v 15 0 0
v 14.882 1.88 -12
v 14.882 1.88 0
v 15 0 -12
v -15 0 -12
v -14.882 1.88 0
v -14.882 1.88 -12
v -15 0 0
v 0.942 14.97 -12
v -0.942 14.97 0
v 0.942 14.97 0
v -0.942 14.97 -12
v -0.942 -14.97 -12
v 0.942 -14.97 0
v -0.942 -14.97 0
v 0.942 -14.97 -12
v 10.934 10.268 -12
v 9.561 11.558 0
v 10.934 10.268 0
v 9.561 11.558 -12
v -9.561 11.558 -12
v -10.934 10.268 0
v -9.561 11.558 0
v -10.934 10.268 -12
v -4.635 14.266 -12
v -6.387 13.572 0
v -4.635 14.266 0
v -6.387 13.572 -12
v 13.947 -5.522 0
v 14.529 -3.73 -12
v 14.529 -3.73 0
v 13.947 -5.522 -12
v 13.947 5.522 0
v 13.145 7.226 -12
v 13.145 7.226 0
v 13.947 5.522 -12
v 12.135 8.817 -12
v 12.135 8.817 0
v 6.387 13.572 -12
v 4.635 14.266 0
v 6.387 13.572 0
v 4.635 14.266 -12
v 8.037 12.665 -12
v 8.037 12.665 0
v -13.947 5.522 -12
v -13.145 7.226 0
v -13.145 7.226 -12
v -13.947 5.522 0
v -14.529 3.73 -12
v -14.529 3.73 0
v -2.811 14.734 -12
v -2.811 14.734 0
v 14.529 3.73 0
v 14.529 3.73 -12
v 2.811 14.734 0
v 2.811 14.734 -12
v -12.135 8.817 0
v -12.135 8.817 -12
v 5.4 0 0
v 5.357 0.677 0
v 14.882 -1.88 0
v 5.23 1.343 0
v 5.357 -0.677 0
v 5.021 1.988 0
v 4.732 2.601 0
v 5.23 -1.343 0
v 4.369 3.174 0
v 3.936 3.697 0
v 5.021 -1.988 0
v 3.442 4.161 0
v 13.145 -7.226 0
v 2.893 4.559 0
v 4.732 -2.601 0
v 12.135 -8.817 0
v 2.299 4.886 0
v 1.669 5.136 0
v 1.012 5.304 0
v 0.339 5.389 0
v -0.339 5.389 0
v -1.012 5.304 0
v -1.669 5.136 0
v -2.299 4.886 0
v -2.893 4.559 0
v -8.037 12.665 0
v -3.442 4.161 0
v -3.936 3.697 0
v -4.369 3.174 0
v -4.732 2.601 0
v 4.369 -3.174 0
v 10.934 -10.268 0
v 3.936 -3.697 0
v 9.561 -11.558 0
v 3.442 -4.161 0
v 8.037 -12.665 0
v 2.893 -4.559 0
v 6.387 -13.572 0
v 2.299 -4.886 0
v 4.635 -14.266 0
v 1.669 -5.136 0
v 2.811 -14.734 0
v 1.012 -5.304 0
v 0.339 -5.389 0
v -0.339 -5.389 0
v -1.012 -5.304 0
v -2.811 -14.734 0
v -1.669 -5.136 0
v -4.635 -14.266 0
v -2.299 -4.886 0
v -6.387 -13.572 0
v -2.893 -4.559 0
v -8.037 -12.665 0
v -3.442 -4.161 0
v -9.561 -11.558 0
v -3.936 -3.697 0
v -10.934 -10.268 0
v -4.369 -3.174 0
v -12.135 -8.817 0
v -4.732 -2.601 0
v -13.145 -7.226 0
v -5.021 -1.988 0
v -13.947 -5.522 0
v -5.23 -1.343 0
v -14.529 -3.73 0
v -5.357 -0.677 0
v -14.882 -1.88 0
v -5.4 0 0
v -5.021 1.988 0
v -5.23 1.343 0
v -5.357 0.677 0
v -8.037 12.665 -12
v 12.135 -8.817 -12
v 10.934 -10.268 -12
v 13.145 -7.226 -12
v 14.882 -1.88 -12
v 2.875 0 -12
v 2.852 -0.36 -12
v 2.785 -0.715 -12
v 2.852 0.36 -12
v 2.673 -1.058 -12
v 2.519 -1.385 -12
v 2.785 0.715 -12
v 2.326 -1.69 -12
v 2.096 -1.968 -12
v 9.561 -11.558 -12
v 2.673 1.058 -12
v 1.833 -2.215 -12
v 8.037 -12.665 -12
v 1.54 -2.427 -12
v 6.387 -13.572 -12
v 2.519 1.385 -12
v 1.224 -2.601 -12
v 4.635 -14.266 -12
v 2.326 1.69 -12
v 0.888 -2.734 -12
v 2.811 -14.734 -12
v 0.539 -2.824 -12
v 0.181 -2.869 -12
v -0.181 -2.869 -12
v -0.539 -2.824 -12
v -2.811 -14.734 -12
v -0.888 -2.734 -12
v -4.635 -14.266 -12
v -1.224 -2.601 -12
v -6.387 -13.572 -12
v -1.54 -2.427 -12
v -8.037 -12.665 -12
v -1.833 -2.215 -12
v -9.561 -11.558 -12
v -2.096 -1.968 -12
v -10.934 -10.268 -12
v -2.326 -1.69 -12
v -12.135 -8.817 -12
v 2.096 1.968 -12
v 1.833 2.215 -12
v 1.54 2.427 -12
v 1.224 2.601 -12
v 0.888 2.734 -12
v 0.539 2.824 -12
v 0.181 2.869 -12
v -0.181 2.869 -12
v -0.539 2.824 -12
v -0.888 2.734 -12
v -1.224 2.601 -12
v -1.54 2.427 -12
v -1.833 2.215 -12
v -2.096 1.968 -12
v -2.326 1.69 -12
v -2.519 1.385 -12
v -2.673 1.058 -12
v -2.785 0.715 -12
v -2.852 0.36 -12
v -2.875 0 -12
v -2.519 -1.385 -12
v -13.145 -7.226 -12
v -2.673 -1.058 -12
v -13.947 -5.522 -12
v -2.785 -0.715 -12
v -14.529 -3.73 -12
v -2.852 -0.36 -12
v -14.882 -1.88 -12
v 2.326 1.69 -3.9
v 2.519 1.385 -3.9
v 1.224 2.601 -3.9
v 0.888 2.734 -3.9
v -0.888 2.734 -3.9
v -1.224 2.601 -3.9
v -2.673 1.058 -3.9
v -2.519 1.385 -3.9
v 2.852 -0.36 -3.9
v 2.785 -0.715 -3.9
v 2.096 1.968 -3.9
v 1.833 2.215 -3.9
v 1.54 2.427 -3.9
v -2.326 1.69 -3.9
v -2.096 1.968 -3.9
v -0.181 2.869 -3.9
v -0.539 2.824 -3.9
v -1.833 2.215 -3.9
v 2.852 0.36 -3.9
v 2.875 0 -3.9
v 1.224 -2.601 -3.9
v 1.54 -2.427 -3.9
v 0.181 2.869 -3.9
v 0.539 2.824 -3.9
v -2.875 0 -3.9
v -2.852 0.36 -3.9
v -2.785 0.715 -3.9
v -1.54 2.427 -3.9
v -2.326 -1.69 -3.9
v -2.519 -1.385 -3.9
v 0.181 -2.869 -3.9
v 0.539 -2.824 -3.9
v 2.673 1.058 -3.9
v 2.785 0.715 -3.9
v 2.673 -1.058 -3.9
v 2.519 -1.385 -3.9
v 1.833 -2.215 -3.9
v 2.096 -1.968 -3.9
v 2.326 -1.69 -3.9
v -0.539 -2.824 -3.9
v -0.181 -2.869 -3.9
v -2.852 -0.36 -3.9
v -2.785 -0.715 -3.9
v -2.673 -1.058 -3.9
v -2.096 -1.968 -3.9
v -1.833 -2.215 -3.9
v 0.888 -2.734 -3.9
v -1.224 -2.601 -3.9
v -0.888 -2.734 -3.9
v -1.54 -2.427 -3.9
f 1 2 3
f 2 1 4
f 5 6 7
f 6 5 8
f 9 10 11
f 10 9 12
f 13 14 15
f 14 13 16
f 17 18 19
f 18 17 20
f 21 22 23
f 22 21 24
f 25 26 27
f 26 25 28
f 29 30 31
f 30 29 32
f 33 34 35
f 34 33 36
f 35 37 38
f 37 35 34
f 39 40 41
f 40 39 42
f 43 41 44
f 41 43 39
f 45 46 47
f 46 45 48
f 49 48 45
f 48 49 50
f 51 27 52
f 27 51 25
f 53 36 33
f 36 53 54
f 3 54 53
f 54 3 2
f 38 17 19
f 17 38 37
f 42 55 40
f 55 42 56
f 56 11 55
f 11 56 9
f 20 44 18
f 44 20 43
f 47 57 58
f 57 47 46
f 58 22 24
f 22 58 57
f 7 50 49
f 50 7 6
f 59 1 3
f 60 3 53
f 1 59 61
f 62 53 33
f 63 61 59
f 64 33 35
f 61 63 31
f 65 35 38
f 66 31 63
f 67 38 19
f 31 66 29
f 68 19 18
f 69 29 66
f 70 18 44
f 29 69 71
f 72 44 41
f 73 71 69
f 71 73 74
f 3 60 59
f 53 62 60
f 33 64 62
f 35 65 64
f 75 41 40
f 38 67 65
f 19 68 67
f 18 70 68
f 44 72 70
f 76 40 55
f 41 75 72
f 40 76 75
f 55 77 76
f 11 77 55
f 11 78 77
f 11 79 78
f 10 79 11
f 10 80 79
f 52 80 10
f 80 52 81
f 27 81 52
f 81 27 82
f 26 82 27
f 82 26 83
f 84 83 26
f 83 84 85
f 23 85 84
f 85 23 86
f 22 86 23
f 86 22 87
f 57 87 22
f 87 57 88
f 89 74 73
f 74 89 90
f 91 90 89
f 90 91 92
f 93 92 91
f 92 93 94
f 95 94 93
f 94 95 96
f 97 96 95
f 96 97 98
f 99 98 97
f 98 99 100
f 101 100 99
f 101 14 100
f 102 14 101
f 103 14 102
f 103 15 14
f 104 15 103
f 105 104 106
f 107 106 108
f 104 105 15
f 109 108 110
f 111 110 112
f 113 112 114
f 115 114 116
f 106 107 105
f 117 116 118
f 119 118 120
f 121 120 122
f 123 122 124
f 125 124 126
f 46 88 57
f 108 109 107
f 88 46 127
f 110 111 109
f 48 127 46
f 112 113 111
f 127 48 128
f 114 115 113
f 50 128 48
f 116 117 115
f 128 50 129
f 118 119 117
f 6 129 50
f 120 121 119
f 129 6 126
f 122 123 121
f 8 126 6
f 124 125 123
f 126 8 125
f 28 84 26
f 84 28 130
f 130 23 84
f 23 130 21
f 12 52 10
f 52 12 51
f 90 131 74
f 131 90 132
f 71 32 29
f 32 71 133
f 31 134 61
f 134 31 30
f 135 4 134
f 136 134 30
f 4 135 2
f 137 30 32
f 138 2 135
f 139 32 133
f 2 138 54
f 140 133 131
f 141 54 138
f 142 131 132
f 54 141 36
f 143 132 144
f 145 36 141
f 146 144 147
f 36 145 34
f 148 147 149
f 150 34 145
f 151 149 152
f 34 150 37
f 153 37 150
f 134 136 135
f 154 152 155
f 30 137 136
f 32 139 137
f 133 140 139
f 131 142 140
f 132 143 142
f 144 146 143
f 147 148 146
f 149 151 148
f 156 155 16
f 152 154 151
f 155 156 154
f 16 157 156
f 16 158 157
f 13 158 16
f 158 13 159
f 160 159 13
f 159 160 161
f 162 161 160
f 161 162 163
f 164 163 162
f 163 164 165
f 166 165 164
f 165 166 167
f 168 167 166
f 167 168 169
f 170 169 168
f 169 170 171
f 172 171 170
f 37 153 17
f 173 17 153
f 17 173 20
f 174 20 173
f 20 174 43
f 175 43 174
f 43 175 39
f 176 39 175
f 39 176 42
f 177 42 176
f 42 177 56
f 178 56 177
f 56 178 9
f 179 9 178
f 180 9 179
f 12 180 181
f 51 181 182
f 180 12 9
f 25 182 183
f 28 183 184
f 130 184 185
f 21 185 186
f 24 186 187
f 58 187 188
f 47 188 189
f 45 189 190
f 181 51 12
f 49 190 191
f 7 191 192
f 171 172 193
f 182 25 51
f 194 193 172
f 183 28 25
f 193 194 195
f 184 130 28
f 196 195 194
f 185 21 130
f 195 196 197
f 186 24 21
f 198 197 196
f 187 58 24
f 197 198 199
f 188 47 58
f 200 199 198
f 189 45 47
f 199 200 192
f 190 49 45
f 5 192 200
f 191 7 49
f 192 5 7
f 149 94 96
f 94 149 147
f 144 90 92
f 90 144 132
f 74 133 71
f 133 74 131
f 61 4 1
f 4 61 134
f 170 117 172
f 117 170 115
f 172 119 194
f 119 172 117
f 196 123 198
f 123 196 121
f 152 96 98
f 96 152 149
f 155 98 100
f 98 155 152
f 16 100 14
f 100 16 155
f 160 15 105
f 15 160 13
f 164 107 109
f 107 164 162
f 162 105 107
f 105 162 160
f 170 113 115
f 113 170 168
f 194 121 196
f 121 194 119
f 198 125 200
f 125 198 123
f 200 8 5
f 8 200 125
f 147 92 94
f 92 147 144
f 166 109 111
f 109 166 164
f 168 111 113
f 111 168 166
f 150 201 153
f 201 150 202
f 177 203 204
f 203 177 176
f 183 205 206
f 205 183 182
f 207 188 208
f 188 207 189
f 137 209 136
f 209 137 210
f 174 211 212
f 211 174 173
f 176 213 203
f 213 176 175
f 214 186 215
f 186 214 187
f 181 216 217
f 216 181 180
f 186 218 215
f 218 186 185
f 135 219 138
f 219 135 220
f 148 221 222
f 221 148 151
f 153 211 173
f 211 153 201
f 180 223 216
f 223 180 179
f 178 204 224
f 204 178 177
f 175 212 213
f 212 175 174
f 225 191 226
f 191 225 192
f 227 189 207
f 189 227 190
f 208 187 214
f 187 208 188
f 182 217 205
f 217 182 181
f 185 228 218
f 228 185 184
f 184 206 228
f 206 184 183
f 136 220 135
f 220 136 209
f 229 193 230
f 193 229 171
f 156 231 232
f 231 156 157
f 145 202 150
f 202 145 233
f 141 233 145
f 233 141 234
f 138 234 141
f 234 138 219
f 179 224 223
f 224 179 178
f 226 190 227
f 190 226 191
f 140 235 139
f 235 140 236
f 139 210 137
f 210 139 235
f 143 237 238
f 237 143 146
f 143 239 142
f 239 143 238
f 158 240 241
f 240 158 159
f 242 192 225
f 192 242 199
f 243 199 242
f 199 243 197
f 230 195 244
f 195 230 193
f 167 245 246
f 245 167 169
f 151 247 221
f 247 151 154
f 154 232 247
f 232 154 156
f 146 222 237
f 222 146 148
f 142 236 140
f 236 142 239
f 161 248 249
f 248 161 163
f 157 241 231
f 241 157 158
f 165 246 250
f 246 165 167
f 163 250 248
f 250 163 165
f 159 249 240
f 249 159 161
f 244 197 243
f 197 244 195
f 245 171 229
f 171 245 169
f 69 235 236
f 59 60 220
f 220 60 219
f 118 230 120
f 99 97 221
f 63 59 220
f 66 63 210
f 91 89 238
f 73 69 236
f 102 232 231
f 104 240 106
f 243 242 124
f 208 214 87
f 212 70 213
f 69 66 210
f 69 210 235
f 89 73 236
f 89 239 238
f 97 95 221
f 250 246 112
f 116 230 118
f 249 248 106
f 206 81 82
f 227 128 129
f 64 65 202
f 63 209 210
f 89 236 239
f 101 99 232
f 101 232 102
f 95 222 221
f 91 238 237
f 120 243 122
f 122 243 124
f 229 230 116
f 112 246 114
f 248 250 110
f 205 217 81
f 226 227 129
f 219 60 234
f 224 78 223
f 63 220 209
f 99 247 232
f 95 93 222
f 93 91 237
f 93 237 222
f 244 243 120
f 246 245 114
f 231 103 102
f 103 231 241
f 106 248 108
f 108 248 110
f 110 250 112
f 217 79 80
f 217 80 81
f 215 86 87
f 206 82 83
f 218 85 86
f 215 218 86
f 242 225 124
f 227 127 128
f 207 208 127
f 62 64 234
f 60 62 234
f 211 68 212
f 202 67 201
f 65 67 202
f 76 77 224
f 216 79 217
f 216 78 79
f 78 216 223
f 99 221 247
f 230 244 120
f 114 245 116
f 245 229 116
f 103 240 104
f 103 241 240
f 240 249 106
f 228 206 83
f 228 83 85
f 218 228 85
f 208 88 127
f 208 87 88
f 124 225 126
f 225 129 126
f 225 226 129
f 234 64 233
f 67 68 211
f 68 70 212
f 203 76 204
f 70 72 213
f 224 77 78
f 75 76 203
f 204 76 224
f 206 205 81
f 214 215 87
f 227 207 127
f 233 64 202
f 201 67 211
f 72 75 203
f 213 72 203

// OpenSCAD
$fn = 50;


difference() {
	union() {
		translate(v = [0, 0, -12.0000000000]) {
			cylinder(h = 12, r = 15.0000000000);
		}
		translate(v = [0, 0, -15.0000000000]) {
			cylinder(h = 15, r = 2.8750000000);
		}
	}
	union() {
		translate(v = [0, 0, 0]) {
			rotate(a = [0, 0, 0]) {
				difference() {
					union() {
						translate(v = [0, 0, -15.0000000000]) {
							cylinder(h = 15, r = 2.6000000000);
						}
						translate(v = [0, 0, -3.9000000000]) {
							cylinder(h = 3.9000000000, r1 = 2.8750000000, r2 = 5.4000000000);
						}
						translate(v = [0, 0, -15.0000000000]) {
							cylinder(h = 15, r = 2.8750000000);
						}
						translate(v = [0, 0, -15.0000000000]) {
							cylinder(h = 15, r = 2.6000000000);
						}
					}
					union();
				}
			}
		}
	}
}
